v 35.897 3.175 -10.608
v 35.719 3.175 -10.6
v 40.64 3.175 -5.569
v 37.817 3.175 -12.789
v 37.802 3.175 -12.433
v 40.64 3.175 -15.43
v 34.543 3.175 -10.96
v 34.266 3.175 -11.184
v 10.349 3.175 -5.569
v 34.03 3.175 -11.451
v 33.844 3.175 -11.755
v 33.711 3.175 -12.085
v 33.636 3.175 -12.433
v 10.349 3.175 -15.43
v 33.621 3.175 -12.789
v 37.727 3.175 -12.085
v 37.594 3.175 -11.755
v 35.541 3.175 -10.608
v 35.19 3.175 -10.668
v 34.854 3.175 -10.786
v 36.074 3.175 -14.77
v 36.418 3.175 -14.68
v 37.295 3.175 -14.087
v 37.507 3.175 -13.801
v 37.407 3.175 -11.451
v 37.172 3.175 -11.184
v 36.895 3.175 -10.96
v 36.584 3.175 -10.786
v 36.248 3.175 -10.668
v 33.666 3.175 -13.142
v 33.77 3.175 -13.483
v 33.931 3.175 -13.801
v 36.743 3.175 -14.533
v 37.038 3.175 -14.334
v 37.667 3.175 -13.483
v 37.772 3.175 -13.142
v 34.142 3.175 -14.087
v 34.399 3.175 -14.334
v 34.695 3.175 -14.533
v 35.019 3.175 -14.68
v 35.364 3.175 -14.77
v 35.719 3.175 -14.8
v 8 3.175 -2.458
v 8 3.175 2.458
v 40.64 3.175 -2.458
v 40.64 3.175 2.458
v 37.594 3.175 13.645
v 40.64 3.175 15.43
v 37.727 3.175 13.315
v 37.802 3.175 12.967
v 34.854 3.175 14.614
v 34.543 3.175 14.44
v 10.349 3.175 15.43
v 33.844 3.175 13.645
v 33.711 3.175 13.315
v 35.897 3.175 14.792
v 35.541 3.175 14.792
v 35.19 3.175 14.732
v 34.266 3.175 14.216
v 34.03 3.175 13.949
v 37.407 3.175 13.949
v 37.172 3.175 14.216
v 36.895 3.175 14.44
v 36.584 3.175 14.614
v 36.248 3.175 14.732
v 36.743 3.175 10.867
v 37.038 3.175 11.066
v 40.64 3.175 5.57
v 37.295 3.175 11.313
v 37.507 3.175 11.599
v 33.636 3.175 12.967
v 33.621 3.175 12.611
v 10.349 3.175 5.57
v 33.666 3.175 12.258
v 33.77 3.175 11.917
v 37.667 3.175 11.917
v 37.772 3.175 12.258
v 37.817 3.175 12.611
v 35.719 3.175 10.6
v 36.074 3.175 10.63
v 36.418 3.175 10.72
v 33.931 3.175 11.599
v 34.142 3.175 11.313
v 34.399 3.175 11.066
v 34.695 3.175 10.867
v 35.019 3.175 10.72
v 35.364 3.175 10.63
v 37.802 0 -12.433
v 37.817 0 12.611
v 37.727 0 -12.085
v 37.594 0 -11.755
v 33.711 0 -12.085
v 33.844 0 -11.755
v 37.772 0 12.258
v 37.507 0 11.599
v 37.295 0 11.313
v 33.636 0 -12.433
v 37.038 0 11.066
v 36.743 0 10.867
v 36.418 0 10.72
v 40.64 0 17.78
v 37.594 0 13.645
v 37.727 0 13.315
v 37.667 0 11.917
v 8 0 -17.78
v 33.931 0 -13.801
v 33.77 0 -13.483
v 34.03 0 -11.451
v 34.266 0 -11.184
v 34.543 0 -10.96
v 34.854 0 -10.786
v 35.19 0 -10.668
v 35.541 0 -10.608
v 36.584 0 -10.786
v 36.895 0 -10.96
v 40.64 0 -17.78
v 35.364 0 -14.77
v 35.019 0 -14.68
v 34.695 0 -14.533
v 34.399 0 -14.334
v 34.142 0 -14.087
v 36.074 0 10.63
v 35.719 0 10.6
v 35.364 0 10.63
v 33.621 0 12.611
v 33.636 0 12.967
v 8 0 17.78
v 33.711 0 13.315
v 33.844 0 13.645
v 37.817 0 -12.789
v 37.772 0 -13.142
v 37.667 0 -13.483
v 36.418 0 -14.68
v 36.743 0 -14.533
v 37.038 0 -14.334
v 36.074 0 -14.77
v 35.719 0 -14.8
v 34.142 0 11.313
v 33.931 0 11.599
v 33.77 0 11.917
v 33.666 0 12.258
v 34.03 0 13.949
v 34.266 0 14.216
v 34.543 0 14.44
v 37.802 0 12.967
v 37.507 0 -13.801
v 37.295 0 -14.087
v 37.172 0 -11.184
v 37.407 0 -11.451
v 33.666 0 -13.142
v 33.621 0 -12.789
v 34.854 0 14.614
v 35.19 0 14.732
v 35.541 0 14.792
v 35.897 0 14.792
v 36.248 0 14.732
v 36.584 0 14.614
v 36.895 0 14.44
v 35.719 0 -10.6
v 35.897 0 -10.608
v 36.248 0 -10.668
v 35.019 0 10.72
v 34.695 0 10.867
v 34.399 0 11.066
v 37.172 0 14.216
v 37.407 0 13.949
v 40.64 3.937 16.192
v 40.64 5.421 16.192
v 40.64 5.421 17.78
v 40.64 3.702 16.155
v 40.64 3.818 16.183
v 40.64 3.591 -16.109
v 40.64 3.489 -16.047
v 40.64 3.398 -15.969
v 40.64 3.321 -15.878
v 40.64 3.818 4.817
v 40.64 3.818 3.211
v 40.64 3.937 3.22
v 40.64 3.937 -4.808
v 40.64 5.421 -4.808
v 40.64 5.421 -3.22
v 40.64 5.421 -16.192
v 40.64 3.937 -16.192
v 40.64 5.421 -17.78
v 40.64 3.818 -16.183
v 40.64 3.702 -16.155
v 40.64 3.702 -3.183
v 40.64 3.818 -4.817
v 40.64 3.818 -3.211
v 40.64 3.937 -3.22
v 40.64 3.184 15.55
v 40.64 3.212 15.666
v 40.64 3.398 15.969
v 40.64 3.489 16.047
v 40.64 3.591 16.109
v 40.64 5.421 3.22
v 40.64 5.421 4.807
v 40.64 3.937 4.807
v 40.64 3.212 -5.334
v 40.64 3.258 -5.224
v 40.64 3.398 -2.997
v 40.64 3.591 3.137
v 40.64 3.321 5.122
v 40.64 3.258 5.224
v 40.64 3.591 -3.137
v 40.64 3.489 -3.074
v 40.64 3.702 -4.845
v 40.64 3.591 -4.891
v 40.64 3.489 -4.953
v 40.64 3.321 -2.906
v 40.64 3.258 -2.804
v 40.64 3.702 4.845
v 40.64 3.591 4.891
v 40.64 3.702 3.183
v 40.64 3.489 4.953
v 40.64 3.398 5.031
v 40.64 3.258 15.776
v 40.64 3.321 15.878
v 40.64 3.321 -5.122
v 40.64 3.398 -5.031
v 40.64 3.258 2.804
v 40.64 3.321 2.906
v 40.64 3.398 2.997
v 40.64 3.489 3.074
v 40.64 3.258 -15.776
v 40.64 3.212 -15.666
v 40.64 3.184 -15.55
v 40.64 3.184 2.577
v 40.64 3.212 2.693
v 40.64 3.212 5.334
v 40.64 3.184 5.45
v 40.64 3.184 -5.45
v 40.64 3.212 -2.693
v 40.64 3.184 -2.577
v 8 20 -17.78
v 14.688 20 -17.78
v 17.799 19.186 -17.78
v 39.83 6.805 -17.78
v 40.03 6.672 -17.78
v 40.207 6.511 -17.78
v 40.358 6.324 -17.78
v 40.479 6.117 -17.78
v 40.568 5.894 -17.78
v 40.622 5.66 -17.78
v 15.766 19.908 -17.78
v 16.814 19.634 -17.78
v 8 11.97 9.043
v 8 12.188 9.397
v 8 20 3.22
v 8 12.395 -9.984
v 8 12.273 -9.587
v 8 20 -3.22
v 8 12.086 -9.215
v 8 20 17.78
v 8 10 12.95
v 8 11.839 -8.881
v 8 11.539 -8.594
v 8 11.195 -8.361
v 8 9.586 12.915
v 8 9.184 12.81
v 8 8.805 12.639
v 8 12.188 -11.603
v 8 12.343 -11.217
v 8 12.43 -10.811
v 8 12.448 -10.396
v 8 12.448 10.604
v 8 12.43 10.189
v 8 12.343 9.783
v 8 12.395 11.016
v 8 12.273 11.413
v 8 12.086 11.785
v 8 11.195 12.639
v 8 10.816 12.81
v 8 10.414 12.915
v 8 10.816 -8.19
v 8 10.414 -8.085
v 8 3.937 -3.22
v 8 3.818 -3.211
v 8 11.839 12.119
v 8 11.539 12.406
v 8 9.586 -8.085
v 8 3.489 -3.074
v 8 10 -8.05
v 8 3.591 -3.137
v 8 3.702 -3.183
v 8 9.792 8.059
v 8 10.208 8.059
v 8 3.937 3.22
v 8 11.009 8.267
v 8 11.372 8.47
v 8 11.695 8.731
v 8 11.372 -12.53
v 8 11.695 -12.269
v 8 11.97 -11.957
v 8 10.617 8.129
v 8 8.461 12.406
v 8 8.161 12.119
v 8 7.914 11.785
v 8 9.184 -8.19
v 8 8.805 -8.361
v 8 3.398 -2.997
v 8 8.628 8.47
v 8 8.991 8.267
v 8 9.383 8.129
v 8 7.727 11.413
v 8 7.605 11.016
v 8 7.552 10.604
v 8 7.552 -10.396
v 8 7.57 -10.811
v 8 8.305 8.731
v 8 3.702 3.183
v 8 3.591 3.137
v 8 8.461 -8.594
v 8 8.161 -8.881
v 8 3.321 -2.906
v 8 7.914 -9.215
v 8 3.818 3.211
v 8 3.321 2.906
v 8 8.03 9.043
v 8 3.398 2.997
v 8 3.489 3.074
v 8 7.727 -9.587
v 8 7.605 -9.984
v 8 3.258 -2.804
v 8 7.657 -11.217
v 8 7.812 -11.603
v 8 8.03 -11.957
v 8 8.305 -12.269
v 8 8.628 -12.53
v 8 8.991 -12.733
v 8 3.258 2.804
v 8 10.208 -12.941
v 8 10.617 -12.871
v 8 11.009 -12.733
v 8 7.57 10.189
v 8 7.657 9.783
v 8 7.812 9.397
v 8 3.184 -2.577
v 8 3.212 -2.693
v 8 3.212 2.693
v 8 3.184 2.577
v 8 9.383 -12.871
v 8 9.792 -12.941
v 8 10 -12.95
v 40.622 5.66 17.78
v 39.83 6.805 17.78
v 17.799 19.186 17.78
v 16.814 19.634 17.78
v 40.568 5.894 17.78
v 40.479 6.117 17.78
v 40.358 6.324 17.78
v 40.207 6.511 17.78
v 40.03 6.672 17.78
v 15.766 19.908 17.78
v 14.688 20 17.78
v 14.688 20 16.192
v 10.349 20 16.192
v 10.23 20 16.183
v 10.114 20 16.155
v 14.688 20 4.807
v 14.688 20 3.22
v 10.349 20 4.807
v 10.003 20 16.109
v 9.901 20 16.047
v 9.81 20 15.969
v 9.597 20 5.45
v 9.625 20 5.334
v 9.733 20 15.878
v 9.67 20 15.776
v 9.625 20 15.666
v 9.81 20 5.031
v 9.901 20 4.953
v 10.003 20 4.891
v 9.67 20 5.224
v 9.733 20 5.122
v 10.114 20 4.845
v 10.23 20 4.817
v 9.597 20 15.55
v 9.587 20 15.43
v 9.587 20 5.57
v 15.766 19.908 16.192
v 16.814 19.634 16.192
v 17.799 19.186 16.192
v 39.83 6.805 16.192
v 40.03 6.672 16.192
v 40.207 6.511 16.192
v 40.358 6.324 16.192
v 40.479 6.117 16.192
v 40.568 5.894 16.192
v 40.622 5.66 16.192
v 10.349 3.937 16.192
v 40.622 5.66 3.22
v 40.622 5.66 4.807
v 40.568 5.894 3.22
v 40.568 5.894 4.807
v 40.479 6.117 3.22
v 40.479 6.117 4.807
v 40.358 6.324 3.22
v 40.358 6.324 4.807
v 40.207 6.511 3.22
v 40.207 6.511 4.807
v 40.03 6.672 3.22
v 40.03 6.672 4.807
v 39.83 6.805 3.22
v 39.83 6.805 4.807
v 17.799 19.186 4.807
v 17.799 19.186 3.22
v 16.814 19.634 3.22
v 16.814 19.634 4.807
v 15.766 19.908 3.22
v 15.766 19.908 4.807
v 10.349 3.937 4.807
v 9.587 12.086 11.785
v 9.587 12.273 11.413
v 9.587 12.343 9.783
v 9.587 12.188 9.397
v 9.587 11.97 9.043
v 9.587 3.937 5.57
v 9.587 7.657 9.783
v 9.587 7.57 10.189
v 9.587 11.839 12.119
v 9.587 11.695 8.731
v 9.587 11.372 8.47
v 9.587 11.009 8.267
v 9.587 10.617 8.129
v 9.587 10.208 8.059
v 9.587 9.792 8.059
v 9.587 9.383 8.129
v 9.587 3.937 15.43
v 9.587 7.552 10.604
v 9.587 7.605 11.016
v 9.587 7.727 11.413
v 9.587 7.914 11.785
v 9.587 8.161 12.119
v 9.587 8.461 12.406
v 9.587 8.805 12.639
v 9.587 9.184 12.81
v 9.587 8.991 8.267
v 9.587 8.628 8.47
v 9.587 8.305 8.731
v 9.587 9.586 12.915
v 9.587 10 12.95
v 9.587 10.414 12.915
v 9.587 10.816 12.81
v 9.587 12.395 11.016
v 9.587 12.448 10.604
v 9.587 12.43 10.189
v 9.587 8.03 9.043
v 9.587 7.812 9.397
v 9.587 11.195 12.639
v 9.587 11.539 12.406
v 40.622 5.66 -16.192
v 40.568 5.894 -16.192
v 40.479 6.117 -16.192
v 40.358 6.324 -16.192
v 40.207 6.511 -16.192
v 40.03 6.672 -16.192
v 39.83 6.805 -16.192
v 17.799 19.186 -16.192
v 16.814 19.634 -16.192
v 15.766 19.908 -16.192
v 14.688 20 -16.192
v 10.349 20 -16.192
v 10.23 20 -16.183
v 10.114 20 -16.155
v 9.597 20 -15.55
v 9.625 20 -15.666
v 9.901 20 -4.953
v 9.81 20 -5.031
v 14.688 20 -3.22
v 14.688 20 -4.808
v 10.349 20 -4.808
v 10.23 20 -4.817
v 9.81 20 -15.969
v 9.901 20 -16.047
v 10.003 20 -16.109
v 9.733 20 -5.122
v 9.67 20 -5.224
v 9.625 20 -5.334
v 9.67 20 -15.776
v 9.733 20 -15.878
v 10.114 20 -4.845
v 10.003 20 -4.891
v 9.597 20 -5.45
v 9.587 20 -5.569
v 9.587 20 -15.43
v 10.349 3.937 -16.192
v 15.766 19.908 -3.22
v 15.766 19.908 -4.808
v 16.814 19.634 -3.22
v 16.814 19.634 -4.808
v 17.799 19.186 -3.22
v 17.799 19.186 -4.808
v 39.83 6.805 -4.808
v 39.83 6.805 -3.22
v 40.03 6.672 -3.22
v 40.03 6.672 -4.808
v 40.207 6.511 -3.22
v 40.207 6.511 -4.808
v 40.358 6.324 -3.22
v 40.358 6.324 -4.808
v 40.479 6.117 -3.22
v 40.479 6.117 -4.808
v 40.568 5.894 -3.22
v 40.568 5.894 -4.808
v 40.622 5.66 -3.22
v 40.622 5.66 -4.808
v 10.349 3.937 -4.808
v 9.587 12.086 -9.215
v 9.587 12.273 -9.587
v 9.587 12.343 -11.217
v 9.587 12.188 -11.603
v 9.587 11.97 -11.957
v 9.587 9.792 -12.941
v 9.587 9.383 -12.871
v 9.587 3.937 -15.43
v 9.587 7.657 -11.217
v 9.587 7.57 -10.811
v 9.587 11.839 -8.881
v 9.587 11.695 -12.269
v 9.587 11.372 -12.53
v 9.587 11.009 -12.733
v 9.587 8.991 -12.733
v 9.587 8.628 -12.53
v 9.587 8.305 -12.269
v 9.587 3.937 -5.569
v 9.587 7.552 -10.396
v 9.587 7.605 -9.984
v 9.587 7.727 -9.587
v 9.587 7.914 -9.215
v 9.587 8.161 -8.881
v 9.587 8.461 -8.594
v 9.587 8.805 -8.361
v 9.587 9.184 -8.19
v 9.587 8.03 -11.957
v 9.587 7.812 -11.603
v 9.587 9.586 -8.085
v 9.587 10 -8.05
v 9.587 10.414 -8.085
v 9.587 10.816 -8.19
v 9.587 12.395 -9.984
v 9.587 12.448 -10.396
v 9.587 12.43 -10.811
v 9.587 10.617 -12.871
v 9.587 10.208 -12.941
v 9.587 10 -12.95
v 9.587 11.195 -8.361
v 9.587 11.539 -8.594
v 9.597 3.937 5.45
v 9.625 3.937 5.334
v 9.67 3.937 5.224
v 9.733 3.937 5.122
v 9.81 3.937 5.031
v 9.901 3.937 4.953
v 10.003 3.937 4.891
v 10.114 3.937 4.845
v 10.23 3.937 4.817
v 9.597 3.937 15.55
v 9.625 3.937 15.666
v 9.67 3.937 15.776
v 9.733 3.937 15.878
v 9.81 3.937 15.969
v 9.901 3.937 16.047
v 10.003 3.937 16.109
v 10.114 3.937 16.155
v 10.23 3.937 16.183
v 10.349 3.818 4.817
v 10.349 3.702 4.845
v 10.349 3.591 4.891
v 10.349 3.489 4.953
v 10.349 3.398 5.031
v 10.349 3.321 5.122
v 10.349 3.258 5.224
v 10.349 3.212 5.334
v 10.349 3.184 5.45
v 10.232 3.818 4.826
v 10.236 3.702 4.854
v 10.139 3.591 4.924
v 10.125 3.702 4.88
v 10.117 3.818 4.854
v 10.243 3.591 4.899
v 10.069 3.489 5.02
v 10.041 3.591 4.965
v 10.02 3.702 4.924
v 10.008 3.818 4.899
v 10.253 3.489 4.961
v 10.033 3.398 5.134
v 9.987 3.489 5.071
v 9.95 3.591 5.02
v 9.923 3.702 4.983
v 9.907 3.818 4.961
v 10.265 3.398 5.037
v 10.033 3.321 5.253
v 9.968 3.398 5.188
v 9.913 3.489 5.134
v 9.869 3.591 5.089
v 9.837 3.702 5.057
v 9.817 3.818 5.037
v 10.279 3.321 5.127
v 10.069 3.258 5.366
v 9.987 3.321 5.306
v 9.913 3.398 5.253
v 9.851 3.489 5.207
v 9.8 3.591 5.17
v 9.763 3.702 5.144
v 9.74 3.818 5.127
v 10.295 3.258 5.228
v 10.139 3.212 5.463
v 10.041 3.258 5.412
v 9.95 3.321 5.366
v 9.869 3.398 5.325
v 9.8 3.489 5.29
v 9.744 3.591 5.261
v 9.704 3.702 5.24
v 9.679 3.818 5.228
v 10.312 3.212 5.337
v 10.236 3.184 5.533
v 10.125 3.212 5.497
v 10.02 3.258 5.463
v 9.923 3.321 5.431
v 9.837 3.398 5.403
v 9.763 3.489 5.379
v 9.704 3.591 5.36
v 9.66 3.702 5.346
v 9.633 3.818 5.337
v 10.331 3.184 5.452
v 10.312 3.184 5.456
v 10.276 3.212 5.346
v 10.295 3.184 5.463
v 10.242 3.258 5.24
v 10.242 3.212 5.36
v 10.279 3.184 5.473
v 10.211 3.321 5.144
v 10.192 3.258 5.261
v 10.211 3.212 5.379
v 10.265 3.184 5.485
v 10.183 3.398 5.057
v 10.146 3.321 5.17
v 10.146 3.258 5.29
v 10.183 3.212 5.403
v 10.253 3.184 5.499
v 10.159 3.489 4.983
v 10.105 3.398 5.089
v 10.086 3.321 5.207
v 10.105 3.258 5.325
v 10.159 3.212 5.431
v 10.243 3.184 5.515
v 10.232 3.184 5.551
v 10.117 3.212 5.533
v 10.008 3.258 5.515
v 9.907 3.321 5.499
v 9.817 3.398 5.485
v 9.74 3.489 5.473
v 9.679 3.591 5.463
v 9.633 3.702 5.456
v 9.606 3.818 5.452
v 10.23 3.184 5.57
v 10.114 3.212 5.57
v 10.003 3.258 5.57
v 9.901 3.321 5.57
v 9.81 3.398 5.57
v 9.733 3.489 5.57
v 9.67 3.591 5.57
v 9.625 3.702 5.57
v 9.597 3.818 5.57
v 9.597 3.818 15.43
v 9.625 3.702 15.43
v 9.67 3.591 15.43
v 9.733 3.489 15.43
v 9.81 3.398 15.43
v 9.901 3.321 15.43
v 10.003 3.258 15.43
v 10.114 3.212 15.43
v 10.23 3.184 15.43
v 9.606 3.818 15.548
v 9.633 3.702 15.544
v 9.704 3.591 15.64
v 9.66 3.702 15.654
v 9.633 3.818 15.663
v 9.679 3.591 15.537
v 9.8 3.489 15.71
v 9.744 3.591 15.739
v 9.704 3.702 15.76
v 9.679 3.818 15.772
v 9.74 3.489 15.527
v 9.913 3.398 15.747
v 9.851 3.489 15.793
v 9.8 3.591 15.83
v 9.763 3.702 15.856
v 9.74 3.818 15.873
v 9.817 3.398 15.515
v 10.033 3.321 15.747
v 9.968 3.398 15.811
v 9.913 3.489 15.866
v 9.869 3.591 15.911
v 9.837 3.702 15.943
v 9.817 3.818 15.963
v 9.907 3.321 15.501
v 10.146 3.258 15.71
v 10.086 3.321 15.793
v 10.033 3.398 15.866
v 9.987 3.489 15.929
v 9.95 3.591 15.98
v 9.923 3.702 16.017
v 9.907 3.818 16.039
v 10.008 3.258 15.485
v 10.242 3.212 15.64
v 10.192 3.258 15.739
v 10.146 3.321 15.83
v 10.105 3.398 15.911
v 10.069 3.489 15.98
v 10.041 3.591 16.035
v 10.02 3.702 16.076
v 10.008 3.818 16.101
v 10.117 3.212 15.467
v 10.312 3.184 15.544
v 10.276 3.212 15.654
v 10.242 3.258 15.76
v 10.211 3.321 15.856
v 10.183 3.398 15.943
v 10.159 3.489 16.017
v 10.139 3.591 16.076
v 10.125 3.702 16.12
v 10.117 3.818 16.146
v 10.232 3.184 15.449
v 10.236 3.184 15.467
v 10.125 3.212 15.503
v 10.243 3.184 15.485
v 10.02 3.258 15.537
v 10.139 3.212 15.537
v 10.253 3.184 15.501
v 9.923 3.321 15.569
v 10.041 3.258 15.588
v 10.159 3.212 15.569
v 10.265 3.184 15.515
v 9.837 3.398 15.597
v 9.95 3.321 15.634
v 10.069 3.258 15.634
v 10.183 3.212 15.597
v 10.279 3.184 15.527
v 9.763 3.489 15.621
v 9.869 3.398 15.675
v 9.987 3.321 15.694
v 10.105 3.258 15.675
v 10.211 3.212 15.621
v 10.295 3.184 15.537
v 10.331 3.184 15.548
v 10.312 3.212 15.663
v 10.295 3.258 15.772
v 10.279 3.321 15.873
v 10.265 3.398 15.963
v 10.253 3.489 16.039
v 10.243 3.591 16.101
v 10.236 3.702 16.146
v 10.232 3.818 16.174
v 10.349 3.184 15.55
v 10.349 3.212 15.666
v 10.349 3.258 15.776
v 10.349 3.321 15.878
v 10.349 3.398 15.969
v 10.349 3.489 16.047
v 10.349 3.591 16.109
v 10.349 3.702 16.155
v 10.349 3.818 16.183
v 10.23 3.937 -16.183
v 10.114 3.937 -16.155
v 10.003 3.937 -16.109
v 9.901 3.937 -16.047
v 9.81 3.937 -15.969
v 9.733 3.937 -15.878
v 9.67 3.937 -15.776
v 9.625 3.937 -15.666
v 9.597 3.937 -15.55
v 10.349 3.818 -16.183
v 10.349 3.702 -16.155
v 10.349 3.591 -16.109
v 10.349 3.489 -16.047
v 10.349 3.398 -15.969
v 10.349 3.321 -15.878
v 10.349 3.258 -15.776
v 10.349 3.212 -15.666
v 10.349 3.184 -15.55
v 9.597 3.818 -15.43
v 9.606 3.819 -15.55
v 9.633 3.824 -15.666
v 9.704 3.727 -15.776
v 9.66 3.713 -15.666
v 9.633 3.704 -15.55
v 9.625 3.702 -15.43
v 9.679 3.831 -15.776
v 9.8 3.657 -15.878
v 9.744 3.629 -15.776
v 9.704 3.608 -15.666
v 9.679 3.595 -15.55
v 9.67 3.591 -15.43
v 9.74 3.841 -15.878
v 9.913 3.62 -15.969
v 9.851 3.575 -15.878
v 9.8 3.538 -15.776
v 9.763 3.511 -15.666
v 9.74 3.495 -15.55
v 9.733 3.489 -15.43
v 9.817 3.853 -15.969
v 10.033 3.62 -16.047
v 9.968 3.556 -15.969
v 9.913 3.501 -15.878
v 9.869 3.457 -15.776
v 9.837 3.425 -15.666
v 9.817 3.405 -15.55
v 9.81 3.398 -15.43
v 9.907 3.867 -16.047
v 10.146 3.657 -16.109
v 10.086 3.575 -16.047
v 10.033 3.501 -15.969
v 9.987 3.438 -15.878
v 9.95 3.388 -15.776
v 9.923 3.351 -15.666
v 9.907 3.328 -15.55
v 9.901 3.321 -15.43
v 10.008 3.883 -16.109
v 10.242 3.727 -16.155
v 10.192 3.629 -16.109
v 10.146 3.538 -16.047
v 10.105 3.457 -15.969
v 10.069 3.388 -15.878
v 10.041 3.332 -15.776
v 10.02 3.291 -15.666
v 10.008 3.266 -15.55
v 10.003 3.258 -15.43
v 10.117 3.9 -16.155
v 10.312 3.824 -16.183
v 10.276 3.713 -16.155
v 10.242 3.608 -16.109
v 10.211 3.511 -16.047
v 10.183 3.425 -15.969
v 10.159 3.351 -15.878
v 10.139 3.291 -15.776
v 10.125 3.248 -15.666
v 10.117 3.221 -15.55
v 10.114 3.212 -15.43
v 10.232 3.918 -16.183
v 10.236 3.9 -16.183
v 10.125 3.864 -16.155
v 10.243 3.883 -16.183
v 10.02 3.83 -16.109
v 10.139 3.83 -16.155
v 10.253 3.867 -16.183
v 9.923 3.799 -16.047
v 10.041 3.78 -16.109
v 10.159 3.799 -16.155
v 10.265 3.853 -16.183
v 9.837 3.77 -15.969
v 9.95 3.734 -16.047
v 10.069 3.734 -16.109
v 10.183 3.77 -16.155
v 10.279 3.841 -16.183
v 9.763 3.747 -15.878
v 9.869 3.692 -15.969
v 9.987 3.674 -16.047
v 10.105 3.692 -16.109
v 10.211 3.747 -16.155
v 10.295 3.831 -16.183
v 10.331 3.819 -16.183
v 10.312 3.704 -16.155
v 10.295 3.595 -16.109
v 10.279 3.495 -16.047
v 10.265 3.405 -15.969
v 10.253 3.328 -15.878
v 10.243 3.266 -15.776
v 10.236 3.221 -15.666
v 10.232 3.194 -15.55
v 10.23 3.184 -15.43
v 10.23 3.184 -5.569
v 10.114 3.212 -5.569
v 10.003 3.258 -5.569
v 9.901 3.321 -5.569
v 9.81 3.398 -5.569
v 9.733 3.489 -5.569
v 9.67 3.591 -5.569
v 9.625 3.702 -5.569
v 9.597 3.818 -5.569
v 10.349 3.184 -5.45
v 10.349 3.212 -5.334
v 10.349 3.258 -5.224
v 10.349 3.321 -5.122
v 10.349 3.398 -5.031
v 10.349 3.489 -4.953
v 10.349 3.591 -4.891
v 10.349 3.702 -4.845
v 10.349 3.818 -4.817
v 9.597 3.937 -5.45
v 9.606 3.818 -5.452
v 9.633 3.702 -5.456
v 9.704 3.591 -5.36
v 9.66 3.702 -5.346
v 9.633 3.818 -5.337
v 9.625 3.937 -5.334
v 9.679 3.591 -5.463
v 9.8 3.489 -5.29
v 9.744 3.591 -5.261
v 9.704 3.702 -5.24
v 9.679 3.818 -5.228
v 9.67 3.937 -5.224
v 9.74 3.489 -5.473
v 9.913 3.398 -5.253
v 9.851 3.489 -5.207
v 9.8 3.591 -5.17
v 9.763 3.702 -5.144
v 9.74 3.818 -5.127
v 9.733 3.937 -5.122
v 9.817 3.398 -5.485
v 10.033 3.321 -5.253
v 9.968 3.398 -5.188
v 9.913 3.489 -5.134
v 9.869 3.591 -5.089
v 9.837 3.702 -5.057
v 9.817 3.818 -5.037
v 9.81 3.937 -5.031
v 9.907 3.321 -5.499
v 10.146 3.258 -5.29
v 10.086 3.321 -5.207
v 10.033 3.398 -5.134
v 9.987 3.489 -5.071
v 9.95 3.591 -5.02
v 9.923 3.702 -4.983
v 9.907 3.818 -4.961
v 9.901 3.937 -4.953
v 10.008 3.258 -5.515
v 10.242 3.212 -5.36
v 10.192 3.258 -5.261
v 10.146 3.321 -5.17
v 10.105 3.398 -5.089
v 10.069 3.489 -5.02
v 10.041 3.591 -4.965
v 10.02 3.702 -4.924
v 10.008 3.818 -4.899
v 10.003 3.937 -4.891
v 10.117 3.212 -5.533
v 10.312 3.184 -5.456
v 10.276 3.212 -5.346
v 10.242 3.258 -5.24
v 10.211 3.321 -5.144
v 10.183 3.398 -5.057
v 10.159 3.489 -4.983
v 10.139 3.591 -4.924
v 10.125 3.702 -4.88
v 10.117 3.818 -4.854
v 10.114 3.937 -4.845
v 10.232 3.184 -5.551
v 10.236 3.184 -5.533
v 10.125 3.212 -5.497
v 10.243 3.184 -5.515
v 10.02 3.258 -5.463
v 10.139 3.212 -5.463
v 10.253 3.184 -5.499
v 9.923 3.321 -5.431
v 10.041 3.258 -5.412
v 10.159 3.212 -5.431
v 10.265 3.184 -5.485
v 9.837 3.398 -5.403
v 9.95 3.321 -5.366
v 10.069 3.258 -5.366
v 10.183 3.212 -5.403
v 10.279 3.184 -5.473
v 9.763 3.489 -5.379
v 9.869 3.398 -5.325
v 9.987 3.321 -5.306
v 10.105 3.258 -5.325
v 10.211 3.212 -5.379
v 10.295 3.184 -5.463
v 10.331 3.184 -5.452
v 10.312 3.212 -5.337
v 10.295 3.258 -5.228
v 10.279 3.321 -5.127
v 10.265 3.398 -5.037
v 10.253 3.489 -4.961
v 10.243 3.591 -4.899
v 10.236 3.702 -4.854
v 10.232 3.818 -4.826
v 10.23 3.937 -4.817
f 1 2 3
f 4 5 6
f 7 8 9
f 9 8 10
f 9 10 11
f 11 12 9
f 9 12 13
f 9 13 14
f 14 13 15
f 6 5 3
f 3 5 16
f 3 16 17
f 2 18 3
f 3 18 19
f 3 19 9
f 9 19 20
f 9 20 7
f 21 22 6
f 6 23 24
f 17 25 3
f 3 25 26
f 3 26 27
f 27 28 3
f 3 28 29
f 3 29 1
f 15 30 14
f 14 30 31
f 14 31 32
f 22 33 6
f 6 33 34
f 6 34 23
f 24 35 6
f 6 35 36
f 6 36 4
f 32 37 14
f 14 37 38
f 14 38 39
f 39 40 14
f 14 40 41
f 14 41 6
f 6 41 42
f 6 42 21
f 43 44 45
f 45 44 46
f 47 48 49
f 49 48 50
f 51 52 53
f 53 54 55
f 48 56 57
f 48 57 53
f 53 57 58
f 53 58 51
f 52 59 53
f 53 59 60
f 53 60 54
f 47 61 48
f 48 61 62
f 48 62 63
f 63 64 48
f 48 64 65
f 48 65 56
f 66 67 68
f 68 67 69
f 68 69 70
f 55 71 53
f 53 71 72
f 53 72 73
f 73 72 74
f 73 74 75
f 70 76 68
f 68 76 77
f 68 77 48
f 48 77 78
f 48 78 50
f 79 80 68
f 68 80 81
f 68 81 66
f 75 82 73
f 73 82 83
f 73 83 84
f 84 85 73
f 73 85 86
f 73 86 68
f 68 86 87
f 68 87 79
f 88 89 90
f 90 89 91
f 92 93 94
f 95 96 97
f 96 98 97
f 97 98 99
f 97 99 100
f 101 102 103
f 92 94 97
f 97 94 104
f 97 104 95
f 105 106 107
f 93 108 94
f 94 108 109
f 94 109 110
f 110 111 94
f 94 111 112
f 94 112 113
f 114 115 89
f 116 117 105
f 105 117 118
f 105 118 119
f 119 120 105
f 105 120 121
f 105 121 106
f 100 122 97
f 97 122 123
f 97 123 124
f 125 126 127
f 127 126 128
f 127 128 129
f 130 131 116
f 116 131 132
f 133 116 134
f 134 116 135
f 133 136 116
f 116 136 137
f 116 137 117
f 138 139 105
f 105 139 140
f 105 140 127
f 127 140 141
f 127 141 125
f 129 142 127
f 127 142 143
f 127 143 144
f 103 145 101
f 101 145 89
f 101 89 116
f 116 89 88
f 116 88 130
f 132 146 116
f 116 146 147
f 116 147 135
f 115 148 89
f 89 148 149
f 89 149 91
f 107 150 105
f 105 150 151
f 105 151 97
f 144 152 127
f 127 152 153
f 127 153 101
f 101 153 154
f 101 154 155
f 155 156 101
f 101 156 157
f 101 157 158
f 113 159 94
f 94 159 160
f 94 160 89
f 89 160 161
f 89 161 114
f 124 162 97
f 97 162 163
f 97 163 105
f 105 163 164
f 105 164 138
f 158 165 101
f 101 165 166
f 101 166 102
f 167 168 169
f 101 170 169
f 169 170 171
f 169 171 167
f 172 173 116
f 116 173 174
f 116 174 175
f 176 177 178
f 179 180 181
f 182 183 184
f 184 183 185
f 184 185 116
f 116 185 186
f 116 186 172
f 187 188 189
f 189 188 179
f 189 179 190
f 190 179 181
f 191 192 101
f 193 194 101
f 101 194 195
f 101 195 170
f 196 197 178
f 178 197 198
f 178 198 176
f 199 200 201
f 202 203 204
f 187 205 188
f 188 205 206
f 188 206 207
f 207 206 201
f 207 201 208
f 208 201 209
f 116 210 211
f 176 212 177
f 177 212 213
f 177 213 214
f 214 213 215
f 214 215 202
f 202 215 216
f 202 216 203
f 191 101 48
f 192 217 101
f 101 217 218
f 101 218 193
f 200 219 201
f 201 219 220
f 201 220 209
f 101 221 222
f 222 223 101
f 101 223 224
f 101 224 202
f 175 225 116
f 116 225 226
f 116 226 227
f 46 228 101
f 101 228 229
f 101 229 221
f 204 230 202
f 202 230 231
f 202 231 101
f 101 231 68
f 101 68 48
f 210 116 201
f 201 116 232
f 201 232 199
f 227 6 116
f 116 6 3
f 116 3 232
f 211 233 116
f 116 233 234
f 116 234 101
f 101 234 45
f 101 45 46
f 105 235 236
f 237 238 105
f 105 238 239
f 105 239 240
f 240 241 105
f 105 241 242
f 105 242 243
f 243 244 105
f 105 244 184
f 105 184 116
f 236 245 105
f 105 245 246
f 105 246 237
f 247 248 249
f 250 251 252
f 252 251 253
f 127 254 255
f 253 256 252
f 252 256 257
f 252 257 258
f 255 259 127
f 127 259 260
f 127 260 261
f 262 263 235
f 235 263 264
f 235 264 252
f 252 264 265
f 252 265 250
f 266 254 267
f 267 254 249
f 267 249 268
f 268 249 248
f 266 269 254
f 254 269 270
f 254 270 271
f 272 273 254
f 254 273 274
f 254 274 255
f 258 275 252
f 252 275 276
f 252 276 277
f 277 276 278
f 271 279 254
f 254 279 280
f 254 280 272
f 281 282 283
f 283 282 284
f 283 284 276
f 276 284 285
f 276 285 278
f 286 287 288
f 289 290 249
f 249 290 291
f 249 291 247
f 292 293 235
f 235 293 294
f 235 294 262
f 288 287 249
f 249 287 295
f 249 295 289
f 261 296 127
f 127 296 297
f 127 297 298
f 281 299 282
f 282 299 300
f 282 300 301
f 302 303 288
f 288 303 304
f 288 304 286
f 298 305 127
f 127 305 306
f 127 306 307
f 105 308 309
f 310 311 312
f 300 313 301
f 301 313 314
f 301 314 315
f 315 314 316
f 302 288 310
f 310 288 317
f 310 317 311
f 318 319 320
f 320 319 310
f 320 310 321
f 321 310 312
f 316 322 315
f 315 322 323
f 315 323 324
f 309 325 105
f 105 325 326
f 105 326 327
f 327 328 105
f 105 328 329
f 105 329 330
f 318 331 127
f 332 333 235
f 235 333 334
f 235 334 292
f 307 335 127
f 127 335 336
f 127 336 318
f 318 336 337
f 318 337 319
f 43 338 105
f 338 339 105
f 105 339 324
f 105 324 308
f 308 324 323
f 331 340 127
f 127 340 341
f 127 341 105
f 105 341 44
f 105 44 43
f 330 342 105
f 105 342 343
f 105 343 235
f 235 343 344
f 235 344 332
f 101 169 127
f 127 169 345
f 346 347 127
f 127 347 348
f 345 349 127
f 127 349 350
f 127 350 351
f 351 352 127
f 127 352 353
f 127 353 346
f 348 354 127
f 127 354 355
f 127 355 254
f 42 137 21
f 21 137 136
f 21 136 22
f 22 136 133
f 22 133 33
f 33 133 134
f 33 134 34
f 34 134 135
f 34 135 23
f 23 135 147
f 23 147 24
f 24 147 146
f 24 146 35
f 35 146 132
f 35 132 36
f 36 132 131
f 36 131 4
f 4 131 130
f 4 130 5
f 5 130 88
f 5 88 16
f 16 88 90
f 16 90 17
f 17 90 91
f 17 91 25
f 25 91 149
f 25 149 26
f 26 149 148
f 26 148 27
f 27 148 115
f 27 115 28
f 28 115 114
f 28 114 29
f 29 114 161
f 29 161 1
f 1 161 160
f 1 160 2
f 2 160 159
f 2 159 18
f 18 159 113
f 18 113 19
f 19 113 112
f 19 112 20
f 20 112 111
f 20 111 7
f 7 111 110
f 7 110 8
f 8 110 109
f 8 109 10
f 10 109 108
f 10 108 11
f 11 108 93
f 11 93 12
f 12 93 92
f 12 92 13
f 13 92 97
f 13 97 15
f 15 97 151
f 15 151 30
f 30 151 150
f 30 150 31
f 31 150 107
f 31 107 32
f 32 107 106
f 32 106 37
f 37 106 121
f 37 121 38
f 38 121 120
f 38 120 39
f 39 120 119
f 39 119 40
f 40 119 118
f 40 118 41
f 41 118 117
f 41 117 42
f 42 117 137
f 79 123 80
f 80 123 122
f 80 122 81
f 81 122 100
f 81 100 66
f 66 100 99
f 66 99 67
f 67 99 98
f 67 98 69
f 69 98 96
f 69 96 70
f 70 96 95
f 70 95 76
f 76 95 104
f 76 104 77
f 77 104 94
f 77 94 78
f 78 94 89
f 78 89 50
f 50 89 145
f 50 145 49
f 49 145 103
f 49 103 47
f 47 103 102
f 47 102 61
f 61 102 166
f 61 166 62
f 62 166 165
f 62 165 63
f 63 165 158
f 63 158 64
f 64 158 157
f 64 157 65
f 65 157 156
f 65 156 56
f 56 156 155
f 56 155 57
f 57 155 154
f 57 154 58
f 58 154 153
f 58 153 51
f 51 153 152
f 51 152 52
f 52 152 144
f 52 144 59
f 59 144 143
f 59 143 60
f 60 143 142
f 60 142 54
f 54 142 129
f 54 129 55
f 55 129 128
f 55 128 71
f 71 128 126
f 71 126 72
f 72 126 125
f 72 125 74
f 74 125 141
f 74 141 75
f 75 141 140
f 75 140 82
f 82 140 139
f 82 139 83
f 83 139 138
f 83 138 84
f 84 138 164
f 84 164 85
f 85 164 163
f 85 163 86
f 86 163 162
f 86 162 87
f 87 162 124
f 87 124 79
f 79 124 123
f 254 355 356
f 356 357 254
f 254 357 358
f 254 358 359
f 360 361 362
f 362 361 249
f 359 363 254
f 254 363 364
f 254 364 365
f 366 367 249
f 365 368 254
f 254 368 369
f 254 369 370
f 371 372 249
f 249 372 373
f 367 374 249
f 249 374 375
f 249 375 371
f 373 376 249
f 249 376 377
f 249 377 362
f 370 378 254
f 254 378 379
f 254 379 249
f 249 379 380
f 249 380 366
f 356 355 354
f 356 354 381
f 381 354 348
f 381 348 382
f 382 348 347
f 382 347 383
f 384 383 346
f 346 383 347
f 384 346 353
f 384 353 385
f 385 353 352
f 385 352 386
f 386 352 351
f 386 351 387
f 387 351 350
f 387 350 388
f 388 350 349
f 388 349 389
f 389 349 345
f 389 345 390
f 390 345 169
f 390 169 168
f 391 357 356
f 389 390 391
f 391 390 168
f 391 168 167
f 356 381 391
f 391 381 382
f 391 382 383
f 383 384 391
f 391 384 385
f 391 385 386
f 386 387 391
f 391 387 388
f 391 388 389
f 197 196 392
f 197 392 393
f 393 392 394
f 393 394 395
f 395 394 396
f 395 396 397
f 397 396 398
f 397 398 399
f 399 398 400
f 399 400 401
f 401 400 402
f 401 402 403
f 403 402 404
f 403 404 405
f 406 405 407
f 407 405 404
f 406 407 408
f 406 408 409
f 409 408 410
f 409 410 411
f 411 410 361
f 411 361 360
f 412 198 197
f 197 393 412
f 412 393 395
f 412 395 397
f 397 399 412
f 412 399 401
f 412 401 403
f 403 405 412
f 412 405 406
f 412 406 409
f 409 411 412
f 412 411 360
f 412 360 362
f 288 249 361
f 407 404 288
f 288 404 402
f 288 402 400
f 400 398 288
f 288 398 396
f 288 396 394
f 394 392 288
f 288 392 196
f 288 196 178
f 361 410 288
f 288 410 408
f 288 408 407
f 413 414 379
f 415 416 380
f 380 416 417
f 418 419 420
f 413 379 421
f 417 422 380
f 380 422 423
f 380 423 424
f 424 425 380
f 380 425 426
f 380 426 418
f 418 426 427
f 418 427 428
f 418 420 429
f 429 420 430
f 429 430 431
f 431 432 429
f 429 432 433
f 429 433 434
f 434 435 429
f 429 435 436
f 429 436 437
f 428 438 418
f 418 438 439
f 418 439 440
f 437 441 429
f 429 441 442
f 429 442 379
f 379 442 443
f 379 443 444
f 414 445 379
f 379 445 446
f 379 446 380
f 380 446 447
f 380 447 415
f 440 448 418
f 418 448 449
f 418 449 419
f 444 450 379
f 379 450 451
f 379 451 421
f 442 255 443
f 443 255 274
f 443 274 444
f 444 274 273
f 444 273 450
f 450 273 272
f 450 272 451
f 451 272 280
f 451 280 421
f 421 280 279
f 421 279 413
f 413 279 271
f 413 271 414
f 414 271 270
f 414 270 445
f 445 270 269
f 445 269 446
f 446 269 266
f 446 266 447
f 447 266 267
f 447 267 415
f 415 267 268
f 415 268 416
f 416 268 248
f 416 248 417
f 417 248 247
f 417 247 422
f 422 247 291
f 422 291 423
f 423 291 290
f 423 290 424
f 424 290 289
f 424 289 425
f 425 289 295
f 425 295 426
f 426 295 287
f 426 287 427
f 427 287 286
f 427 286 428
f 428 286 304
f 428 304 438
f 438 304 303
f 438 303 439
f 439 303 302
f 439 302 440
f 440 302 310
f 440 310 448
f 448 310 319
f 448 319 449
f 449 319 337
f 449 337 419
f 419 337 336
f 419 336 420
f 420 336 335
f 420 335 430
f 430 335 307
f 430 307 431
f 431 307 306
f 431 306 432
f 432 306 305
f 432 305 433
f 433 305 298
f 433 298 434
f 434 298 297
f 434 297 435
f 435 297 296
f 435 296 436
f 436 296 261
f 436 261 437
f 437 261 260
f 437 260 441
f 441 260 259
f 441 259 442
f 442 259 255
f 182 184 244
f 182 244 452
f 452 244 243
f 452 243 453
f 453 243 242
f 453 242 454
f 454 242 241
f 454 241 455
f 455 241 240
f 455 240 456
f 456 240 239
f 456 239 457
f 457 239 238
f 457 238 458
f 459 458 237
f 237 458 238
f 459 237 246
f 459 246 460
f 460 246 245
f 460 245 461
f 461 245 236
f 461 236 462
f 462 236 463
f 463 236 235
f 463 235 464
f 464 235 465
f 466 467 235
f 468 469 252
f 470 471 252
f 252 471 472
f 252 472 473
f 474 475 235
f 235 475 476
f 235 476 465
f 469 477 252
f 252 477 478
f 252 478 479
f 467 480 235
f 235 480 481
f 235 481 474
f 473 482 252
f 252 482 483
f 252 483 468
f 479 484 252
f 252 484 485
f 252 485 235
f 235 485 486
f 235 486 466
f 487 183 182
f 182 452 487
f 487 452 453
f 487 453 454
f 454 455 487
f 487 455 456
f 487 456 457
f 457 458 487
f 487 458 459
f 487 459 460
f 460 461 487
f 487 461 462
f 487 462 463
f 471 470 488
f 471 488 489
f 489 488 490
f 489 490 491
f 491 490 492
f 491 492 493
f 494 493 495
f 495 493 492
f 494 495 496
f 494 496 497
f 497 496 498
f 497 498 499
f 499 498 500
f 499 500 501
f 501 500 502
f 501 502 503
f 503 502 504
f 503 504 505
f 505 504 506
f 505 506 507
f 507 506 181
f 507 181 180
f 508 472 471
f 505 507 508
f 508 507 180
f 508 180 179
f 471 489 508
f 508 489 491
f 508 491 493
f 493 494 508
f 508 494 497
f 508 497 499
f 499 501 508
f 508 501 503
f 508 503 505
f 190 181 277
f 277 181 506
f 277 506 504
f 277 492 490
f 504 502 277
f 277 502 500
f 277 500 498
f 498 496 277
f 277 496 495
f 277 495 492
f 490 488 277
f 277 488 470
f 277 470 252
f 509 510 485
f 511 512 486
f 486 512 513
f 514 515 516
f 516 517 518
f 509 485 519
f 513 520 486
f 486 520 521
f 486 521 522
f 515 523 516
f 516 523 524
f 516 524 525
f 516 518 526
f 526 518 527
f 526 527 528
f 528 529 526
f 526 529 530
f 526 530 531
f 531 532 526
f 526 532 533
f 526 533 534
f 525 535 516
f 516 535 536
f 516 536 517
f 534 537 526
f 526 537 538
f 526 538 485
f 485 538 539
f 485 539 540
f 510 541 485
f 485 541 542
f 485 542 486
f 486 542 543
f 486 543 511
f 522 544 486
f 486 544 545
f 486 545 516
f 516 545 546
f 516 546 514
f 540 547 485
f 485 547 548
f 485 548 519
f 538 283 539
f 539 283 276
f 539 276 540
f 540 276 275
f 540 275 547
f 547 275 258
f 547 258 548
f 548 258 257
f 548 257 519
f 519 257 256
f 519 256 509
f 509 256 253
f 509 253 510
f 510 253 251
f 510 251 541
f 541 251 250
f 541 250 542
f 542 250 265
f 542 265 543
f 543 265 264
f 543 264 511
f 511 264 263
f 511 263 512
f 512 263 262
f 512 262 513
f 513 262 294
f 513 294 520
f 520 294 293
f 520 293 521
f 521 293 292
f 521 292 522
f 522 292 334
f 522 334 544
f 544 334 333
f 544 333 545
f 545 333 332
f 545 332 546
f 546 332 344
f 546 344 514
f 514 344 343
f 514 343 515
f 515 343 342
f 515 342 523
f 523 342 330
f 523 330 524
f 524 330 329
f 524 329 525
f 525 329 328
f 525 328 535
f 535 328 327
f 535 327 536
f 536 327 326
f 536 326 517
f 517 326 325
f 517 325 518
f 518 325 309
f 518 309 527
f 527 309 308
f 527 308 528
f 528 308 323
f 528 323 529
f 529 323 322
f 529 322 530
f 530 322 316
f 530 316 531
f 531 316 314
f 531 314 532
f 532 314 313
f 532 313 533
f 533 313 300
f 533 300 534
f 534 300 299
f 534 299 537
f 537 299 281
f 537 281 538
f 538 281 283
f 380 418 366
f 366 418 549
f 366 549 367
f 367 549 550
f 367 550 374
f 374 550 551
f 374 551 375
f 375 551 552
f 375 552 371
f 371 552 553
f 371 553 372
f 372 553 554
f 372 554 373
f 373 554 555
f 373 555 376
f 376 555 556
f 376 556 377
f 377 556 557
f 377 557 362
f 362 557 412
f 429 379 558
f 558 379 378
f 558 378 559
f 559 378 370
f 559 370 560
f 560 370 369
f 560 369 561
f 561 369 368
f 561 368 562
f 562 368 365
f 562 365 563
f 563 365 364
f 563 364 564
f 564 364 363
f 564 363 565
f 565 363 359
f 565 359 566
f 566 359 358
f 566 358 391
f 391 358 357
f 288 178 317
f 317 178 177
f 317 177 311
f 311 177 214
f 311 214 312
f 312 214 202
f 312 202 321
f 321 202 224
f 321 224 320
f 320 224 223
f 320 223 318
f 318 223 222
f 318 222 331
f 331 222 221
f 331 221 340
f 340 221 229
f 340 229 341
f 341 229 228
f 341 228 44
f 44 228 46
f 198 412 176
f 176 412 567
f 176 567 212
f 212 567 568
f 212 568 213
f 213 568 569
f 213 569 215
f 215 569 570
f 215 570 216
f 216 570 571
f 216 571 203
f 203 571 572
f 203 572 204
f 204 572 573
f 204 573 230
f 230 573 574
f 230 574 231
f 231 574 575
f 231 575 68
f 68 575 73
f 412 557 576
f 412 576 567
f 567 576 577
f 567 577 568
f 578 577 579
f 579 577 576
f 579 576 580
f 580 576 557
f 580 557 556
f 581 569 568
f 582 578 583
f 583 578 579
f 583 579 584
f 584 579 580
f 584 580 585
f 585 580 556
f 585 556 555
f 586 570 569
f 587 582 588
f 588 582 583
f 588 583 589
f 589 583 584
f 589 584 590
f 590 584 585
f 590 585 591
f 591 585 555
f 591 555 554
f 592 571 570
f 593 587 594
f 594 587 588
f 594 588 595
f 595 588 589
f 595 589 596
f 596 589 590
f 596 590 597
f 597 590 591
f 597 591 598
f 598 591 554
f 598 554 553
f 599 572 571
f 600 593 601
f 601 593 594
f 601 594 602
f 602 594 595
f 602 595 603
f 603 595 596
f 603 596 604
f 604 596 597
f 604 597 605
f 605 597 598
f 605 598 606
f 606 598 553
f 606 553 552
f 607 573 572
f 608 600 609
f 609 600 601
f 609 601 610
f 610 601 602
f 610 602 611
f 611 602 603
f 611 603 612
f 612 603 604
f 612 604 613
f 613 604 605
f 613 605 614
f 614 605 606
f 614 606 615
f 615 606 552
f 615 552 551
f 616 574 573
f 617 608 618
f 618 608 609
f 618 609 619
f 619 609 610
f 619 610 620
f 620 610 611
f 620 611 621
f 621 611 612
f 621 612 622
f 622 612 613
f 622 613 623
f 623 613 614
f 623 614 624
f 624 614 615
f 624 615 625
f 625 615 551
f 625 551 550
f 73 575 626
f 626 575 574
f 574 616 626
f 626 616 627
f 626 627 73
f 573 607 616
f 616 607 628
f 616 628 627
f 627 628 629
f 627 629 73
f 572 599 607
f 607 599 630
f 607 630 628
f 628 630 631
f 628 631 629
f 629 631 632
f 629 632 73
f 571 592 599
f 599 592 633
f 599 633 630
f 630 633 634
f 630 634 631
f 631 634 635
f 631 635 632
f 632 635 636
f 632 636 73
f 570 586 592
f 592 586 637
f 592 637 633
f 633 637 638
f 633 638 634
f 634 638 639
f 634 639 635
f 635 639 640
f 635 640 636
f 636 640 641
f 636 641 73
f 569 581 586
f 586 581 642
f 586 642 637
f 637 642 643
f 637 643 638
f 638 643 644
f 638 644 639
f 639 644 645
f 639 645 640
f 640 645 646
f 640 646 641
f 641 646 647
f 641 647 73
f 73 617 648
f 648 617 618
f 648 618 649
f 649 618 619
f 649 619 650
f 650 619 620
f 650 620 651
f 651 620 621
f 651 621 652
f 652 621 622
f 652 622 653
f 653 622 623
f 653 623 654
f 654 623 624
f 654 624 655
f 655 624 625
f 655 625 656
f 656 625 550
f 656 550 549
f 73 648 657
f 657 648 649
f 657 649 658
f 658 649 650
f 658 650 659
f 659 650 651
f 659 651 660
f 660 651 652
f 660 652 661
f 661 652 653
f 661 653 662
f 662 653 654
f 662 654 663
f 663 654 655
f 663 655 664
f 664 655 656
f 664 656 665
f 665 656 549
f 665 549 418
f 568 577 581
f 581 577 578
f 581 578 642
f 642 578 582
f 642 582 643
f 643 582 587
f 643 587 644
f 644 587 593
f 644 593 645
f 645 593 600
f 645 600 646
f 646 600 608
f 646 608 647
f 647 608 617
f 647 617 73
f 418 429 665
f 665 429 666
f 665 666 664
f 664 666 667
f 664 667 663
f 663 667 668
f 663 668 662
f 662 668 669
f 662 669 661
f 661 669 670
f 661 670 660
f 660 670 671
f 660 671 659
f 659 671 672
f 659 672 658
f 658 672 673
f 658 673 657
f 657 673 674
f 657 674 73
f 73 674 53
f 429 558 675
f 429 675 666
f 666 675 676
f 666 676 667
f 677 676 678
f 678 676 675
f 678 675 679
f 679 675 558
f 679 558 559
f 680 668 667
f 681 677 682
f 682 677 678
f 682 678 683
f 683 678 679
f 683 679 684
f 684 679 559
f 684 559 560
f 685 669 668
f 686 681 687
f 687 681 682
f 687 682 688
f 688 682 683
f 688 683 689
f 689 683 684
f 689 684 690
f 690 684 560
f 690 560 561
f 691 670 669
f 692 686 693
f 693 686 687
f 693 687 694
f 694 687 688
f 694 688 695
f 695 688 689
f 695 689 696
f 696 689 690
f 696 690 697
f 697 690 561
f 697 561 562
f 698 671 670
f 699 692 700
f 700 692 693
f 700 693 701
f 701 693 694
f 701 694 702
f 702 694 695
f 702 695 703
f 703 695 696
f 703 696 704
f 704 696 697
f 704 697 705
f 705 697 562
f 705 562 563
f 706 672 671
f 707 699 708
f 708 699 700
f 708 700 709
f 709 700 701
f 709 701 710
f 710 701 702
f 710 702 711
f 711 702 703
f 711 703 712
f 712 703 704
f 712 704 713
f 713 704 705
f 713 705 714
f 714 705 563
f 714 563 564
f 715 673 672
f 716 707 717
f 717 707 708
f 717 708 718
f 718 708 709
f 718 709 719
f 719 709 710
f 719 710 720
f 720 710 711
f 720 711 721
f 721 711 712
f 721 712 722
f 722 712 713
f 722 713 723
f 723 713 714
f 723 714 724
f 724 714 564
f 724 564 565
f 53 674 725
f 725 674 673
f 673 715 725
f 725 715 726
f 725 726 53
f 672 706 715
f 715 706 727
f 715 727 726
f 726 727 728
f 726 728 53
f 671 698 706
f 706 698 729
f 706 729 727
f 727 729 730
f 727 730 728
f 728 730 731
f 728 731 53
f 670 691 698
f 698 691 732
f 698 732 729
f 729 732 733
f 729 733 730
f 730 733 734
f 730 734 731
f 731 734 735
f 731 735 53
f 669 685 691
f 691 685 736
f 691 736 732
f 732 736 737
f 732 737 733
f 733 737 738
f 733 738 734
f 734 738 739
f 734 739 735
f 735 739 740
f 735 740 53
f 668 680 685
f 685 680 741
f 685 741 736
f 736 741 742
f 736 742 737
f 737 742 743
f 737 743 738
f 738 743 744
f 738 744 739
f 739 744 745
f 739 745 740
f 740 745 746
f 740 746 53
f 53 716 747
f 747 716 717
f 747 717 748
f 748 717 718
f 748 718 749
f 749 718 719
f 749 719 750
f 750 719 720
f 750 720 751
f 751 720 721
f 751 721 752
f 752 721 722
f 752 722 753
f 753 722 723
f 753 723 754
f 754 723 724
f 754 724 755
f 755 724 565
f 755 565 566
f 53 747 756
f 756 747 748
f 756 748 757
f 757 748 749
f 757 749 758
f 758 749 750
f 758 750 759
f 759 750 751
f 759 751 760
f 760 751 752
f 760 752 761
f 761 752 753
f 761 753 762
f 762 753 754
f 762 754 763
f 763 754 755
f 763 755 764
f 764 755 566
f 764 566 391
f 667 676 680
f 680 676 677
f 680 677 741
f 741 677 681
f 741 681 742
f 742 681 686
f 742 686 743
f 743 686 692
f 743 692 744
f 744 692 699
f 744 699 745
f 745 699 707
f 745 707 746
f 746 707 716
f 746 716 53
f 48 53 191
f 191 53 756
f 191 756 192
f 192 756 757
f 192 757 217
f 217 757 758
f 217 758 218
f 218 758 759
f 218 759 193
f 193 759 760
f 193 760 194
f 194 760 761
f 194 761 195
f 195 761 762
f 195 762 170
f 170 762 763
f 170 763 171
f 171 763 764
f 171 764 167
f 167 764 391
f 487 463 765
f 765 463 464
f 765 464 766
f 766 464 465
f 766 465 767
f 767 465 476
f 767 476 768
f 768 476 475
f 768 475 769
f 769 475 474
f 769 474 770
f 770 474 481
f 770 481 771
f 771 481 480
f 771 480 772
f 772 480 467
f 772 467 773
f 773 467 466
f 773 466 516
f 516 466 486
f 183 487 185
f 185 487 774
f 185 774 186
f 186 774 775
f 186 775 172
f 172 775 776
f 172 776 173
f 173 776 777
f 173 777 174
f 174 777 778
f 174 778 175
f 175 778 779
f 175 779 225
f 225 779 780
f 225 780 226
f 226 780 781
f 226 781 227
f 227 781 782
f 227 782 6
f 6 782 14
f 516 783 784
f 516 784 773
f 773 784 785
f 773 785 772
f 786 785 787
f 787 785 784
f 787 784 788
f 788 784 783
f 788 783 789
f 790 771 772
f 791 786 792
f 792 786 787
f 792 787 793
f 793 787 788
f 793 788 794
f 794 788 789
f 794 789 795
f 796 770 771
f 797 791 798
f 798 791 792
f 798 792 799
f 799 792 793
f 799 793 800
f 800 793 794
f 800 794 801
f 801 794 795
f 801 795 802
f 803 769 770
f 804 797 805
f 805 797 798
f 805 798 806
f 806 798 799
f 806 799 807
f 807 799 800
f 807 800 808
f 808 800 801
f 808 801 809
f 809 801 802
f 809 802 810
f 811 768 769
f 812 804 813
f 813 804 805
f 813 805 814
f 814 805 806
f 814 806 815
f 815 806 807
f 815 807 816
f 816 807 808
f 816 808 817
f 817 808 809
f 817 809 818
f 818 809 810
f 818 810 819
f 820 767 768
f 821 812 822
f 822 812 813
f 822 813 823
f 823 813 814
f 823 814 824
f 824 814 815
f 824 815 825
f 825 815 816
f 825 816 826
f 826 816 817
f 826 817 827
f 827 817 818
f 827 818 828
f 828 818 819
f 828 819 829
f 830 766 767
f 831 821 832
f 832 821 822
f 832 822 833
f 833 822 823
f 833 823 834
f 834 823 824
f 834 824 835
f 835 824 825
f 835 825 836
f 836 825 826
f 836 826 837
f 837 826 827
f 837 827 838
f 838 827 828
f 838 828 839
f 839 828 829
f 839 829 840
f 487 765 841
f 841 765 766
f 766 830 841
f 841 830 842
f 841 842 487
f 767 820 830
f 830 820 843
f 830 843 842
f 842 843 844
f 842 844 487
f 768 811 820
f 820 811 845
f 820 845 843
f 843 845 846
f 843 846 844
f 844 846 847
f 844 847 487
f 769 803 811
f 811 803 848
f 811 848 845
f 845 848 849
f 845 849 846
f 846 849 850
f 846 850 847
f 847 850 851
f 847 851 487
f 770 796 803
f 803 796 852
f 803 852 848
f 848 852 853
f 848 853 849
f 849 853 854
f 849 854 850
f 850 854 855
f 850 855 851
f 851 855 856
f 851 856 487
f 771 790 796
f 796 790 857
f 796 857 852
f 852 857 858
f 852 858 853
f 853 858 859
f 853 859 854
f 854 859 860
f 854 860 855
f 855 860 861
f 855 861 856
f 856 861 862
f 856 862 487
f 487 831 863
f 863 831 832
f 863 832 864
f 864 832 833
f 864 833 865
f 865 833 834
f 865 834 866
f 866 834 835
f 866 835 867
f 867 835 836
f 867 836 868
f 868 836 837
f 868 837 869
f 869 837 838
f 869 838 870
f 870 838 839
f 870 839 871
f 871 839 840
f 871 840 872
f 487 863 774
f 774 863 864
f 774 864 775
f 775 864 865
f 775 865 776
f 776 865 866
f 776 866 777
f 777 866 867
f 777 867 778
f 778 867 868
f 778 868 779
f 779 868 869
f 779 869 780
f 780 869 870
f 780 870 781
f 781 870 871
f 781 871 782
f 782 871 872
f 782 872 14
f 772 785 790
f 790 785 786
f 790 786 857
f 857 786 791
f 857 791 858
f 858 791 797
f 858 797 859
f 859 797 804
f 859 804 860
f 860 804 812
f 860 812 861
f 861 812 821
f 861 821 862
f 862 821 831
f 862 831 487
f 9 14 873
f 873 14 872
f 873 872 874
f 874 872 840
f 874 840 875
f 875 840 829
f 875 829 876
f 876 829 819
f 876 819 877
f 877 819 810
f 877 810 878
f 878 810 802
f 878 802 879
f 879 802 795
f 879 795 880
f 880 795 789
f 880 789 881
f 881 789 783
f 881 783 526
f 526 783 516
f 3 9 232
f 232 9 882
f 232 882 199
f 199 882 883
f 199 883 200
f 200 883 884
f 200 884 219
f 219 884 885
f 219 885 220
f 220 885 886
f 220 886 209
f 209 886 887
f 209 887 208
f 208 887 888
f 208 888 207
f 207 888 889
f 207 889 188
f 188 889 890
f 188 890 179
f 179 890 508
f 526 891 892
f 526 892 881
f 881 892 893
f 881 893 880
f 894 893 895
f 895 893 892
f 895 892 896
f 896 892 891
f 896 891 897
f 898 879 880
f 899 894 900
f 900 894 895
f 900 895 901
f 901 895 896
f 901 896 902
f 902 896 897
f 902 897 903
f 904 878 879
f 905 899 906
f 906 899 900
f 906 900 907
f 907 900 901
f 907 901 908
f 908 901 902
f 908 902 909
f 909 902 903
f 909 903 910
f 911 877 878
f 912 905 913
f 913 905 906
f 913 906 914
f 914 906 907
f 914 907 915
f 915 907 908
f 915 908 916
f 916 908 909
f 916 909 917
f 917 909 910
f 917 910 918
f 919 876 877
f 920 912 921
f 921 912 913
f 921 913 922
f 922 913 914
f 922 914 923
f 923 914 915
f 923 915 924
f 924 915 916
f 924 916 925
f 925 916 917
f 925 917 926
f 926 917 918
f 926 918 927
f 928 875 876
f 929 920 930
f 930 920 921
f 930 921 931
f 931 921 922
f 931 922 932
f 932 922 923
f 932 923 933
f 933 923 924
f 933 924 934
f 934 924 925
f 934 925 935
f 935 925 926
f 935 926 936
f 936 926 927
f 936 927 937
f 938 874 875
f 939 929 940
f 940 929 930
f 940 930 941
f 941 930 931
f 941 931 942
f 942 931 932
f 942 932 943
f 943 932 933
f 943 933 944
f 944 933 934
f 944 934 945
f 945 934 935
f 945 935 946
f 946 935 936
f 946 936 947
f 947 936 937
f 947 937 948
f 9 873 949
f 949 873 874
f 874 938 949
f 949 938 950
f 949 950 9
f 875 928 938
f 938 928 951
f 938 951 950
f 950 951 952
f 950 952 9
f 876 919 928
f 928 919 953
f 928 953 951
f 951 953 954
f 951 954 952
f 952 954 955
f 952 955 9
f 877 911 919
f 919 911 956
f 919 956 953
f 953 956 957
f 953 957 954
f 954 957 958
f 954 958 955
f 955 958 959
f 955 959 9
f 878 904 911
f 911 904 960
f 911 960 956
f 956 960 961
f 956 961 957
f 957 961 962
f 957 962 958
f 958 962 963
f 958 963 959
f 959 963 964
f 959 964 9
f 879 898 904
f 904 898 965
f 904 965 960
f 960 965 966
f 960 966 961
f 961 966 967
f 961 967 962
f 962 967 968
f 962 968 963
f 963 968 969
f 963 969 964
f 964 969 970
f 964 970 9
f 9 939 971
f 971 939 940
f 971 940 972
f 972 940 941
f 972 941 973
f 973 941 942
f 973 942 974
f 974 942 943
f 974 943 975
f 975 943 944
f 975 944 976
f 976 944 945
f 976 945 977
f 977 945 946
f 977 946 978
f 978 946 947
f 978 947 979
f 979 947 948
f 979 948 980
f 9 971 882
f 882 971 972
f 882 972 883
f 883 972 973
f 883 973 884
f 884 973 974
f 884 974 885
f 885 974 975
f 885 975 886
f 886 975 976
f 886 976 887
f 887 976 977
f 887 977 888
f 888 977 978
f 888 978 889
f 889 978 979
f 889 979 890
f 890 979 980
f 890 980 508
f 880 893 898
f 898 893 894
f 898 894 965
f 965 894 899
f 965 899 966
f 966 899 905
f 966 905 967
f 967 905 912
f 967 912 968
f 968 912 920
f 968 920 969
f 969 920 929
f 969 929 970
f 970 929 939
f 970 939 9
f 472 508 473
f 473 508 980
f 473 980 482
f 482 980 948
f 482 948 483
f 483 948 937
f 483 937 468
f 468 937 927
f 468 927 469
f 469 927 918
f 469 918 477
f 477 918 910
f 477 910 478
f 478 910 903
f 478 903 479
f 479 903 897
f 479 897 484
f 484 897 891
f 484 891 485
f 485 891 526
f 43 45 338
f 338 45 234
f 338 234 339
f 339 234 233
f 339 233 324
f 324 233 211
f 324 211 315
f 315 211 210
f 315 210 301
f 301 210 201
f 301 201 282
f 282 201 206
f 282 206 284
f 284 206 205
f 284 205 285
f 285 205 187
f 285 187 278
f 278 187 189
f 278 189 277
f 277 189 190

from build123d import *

# Parameters (mm, degrees)
SKETCH1_W            = 32.64025
SKETCH1_H            = 35.56
SKETCH1_R            = 2.1
BOSS_EXTRUDE2_DEPTH  = 3.175
BOSS_EXTRUDE3_DEPTH  = 1.5875
SKETCH4_W            = 11.385
SKETCH4_H            = 16.825
SKETCH4_R            = 2.45
BOSS_EXTRUDE4_DEPTH  = 1.5875
MIRROR2_COPY_1_DEPTH = 1.5875
FILLET1_R            = 0.762
FILLET2_R            = 0.762
FILLET6_R            = 0.762
FILLET7_R            = 0.762


with BuildPart() as part:
    # Sketch1 → Boss-Extrude2 (new body)
    with BuildSketch(Plane(origin=(0, 0, 0), x_dir=(1, 0, 0), z_dir=(0, 1, 0))):
        with Locations((24.319875, 0)):
            Rectangle(SKETCH1_W, SKETCH1_H)
        with Locations((35.71875, 12.7)):
            Circle(SKETCH1_R, mode=Mode.SUBTRACT)
        with Locations((35.71875, -12.7)):
            Circle(SKETCH1_R, mode=Mode.SUBTRACT)
    extrude(amount=BOSS_EXTRUDE2_DEPTH)

    # Sketch2 → Boss-Extrude3 (add)
    with BuildSketch(Plane.XY.offset(17.78)):
        with BuildLine():
            Line((17.798889871, 19.185782349), (39.830221584, 6.805062799))
            ThreePointArc((39.830221584, 6.805062799), (40.422680511, 6.222841365), (40.64, 5.421117212))
            Line((40.64, 5.421117212), (40.64, 3.175))
            Line((40.64, 3.175), (7.99975, 3.175))
            Line((7.99975, 3.175), (7.99975, 20))
            Line((7.99975, 20), (11.5875, 20))
            Line((11.5875, 20), (14.688003537, 20))
            ThreePointArc((14.688003537, 20), (16.295840918, 19.793074064), (17.798889871, 19.185782349))
        make_face()
    boss_extrude3 = extrude(amount=-BOSS_EXTRUDE3_DEPTH)

    # Mirror1: Boss-Extrude3 across plane
    add(boss_extrude3.mirror(Plane.XY.offset(10.5)))

    # Sketch4 → Boss-Extrude4 (add)
    with BuildSketch(Plane.ZY.offset(-7.99975)):
        with Locations((10.5, 11.5875)):
            Rectangle(SKETCH4_W, SKETCH4_H)
        with Locations((10.5, 10)):
            Circle(SKETCH4_R, mode=Mode.SUBTRACT)
    boss_extrude4 = extrude(amount=-BOSS_EXTRUDE4_DEPTH)

    # Mirror2: Boss-Extrude3, Boss-Extrude4 across plane
    add(boss_extrude3.mirror(Plane.XY))
    add(boss_extrude4.mirror(Plane.XY))

    # Mirror2 copy 1 sketch → Mirror2 copy 1 (add)
    with BuildSketch(Plane.XY.offset(-3.22)):
        with BuildLine():
            Line((17.798889871, 19.185782349), (39.830221584, 6.805062799))
            ThreePointArc((39.830221584, 6.805062799), (40.422680511, 6.222841365), (40.64, 5.421117212))
            Line((40.64, 5.421117212), (40.64, 3.175))
            Line((40.64, 3.175), (7.99975, 3.175))
            Line((7.99975, 3.175), (7.99975, 20))
            Line((7.99975, 20), (11.5875, 20))
            Line((11.5875, 20), (14.688003537, 20))
            ThreePointArc((14.688003537, 20), (16.295840918, 19.793074064), (17.798889871, 19.185782349))
        make_face()
    extrude(amount=-MIRROR2_COPY_1_DEPTH)

    # Fillet1
    fillet1_edges = [part.edges().sort_by_distance(p)[0] for p in [
        (9.58725, 11.5875, 4.8075),
    ]]
    fillet(fillet1_edges, radius=FILLET1_R)

    # Fillet2
    fillet2_edges = [part.edges().sort_by_distance(p)[0] for p in [
        (9.58725, 11.5875, 16.1925),
    ]]
    fillet(fillet2_edges, radius=FILLET2_R)

    # Fillet6
    fillet6_edges = [part.edges().sort_by_distance(p)[0] for p in [
        (24.319875, 3.175, 3.22),
    ]]
    fillet(fillet6_edges, radius=FILLET6_R)

    # Fillet7
    fillet7_edges = [part.edges().sort_by_distance(p)[0] for p in [
        (24.319875, 3.175, -3.22),
        (25.113625, 3.175, -4.8075),
        (25.113625, 3.175, -16.1925),
        (9.58725, 11.5875, -16.1925),
        (9.58725, 11.5875, -4.8075),
        (9.58725, 3.175, -10.5),
        (25.494625, 3.175, 4.8075),
        (9.58725, 3.175, 10.5),
        (9.810434633, 3.175, 5.030684633),
        (25.494625, 3.175, 16.1925),
        (9.810434633, 3.175, 15.969315367),
    ]]
    fillet(fillet7_edges, radius=FILLET7_R)


solid = part.part
